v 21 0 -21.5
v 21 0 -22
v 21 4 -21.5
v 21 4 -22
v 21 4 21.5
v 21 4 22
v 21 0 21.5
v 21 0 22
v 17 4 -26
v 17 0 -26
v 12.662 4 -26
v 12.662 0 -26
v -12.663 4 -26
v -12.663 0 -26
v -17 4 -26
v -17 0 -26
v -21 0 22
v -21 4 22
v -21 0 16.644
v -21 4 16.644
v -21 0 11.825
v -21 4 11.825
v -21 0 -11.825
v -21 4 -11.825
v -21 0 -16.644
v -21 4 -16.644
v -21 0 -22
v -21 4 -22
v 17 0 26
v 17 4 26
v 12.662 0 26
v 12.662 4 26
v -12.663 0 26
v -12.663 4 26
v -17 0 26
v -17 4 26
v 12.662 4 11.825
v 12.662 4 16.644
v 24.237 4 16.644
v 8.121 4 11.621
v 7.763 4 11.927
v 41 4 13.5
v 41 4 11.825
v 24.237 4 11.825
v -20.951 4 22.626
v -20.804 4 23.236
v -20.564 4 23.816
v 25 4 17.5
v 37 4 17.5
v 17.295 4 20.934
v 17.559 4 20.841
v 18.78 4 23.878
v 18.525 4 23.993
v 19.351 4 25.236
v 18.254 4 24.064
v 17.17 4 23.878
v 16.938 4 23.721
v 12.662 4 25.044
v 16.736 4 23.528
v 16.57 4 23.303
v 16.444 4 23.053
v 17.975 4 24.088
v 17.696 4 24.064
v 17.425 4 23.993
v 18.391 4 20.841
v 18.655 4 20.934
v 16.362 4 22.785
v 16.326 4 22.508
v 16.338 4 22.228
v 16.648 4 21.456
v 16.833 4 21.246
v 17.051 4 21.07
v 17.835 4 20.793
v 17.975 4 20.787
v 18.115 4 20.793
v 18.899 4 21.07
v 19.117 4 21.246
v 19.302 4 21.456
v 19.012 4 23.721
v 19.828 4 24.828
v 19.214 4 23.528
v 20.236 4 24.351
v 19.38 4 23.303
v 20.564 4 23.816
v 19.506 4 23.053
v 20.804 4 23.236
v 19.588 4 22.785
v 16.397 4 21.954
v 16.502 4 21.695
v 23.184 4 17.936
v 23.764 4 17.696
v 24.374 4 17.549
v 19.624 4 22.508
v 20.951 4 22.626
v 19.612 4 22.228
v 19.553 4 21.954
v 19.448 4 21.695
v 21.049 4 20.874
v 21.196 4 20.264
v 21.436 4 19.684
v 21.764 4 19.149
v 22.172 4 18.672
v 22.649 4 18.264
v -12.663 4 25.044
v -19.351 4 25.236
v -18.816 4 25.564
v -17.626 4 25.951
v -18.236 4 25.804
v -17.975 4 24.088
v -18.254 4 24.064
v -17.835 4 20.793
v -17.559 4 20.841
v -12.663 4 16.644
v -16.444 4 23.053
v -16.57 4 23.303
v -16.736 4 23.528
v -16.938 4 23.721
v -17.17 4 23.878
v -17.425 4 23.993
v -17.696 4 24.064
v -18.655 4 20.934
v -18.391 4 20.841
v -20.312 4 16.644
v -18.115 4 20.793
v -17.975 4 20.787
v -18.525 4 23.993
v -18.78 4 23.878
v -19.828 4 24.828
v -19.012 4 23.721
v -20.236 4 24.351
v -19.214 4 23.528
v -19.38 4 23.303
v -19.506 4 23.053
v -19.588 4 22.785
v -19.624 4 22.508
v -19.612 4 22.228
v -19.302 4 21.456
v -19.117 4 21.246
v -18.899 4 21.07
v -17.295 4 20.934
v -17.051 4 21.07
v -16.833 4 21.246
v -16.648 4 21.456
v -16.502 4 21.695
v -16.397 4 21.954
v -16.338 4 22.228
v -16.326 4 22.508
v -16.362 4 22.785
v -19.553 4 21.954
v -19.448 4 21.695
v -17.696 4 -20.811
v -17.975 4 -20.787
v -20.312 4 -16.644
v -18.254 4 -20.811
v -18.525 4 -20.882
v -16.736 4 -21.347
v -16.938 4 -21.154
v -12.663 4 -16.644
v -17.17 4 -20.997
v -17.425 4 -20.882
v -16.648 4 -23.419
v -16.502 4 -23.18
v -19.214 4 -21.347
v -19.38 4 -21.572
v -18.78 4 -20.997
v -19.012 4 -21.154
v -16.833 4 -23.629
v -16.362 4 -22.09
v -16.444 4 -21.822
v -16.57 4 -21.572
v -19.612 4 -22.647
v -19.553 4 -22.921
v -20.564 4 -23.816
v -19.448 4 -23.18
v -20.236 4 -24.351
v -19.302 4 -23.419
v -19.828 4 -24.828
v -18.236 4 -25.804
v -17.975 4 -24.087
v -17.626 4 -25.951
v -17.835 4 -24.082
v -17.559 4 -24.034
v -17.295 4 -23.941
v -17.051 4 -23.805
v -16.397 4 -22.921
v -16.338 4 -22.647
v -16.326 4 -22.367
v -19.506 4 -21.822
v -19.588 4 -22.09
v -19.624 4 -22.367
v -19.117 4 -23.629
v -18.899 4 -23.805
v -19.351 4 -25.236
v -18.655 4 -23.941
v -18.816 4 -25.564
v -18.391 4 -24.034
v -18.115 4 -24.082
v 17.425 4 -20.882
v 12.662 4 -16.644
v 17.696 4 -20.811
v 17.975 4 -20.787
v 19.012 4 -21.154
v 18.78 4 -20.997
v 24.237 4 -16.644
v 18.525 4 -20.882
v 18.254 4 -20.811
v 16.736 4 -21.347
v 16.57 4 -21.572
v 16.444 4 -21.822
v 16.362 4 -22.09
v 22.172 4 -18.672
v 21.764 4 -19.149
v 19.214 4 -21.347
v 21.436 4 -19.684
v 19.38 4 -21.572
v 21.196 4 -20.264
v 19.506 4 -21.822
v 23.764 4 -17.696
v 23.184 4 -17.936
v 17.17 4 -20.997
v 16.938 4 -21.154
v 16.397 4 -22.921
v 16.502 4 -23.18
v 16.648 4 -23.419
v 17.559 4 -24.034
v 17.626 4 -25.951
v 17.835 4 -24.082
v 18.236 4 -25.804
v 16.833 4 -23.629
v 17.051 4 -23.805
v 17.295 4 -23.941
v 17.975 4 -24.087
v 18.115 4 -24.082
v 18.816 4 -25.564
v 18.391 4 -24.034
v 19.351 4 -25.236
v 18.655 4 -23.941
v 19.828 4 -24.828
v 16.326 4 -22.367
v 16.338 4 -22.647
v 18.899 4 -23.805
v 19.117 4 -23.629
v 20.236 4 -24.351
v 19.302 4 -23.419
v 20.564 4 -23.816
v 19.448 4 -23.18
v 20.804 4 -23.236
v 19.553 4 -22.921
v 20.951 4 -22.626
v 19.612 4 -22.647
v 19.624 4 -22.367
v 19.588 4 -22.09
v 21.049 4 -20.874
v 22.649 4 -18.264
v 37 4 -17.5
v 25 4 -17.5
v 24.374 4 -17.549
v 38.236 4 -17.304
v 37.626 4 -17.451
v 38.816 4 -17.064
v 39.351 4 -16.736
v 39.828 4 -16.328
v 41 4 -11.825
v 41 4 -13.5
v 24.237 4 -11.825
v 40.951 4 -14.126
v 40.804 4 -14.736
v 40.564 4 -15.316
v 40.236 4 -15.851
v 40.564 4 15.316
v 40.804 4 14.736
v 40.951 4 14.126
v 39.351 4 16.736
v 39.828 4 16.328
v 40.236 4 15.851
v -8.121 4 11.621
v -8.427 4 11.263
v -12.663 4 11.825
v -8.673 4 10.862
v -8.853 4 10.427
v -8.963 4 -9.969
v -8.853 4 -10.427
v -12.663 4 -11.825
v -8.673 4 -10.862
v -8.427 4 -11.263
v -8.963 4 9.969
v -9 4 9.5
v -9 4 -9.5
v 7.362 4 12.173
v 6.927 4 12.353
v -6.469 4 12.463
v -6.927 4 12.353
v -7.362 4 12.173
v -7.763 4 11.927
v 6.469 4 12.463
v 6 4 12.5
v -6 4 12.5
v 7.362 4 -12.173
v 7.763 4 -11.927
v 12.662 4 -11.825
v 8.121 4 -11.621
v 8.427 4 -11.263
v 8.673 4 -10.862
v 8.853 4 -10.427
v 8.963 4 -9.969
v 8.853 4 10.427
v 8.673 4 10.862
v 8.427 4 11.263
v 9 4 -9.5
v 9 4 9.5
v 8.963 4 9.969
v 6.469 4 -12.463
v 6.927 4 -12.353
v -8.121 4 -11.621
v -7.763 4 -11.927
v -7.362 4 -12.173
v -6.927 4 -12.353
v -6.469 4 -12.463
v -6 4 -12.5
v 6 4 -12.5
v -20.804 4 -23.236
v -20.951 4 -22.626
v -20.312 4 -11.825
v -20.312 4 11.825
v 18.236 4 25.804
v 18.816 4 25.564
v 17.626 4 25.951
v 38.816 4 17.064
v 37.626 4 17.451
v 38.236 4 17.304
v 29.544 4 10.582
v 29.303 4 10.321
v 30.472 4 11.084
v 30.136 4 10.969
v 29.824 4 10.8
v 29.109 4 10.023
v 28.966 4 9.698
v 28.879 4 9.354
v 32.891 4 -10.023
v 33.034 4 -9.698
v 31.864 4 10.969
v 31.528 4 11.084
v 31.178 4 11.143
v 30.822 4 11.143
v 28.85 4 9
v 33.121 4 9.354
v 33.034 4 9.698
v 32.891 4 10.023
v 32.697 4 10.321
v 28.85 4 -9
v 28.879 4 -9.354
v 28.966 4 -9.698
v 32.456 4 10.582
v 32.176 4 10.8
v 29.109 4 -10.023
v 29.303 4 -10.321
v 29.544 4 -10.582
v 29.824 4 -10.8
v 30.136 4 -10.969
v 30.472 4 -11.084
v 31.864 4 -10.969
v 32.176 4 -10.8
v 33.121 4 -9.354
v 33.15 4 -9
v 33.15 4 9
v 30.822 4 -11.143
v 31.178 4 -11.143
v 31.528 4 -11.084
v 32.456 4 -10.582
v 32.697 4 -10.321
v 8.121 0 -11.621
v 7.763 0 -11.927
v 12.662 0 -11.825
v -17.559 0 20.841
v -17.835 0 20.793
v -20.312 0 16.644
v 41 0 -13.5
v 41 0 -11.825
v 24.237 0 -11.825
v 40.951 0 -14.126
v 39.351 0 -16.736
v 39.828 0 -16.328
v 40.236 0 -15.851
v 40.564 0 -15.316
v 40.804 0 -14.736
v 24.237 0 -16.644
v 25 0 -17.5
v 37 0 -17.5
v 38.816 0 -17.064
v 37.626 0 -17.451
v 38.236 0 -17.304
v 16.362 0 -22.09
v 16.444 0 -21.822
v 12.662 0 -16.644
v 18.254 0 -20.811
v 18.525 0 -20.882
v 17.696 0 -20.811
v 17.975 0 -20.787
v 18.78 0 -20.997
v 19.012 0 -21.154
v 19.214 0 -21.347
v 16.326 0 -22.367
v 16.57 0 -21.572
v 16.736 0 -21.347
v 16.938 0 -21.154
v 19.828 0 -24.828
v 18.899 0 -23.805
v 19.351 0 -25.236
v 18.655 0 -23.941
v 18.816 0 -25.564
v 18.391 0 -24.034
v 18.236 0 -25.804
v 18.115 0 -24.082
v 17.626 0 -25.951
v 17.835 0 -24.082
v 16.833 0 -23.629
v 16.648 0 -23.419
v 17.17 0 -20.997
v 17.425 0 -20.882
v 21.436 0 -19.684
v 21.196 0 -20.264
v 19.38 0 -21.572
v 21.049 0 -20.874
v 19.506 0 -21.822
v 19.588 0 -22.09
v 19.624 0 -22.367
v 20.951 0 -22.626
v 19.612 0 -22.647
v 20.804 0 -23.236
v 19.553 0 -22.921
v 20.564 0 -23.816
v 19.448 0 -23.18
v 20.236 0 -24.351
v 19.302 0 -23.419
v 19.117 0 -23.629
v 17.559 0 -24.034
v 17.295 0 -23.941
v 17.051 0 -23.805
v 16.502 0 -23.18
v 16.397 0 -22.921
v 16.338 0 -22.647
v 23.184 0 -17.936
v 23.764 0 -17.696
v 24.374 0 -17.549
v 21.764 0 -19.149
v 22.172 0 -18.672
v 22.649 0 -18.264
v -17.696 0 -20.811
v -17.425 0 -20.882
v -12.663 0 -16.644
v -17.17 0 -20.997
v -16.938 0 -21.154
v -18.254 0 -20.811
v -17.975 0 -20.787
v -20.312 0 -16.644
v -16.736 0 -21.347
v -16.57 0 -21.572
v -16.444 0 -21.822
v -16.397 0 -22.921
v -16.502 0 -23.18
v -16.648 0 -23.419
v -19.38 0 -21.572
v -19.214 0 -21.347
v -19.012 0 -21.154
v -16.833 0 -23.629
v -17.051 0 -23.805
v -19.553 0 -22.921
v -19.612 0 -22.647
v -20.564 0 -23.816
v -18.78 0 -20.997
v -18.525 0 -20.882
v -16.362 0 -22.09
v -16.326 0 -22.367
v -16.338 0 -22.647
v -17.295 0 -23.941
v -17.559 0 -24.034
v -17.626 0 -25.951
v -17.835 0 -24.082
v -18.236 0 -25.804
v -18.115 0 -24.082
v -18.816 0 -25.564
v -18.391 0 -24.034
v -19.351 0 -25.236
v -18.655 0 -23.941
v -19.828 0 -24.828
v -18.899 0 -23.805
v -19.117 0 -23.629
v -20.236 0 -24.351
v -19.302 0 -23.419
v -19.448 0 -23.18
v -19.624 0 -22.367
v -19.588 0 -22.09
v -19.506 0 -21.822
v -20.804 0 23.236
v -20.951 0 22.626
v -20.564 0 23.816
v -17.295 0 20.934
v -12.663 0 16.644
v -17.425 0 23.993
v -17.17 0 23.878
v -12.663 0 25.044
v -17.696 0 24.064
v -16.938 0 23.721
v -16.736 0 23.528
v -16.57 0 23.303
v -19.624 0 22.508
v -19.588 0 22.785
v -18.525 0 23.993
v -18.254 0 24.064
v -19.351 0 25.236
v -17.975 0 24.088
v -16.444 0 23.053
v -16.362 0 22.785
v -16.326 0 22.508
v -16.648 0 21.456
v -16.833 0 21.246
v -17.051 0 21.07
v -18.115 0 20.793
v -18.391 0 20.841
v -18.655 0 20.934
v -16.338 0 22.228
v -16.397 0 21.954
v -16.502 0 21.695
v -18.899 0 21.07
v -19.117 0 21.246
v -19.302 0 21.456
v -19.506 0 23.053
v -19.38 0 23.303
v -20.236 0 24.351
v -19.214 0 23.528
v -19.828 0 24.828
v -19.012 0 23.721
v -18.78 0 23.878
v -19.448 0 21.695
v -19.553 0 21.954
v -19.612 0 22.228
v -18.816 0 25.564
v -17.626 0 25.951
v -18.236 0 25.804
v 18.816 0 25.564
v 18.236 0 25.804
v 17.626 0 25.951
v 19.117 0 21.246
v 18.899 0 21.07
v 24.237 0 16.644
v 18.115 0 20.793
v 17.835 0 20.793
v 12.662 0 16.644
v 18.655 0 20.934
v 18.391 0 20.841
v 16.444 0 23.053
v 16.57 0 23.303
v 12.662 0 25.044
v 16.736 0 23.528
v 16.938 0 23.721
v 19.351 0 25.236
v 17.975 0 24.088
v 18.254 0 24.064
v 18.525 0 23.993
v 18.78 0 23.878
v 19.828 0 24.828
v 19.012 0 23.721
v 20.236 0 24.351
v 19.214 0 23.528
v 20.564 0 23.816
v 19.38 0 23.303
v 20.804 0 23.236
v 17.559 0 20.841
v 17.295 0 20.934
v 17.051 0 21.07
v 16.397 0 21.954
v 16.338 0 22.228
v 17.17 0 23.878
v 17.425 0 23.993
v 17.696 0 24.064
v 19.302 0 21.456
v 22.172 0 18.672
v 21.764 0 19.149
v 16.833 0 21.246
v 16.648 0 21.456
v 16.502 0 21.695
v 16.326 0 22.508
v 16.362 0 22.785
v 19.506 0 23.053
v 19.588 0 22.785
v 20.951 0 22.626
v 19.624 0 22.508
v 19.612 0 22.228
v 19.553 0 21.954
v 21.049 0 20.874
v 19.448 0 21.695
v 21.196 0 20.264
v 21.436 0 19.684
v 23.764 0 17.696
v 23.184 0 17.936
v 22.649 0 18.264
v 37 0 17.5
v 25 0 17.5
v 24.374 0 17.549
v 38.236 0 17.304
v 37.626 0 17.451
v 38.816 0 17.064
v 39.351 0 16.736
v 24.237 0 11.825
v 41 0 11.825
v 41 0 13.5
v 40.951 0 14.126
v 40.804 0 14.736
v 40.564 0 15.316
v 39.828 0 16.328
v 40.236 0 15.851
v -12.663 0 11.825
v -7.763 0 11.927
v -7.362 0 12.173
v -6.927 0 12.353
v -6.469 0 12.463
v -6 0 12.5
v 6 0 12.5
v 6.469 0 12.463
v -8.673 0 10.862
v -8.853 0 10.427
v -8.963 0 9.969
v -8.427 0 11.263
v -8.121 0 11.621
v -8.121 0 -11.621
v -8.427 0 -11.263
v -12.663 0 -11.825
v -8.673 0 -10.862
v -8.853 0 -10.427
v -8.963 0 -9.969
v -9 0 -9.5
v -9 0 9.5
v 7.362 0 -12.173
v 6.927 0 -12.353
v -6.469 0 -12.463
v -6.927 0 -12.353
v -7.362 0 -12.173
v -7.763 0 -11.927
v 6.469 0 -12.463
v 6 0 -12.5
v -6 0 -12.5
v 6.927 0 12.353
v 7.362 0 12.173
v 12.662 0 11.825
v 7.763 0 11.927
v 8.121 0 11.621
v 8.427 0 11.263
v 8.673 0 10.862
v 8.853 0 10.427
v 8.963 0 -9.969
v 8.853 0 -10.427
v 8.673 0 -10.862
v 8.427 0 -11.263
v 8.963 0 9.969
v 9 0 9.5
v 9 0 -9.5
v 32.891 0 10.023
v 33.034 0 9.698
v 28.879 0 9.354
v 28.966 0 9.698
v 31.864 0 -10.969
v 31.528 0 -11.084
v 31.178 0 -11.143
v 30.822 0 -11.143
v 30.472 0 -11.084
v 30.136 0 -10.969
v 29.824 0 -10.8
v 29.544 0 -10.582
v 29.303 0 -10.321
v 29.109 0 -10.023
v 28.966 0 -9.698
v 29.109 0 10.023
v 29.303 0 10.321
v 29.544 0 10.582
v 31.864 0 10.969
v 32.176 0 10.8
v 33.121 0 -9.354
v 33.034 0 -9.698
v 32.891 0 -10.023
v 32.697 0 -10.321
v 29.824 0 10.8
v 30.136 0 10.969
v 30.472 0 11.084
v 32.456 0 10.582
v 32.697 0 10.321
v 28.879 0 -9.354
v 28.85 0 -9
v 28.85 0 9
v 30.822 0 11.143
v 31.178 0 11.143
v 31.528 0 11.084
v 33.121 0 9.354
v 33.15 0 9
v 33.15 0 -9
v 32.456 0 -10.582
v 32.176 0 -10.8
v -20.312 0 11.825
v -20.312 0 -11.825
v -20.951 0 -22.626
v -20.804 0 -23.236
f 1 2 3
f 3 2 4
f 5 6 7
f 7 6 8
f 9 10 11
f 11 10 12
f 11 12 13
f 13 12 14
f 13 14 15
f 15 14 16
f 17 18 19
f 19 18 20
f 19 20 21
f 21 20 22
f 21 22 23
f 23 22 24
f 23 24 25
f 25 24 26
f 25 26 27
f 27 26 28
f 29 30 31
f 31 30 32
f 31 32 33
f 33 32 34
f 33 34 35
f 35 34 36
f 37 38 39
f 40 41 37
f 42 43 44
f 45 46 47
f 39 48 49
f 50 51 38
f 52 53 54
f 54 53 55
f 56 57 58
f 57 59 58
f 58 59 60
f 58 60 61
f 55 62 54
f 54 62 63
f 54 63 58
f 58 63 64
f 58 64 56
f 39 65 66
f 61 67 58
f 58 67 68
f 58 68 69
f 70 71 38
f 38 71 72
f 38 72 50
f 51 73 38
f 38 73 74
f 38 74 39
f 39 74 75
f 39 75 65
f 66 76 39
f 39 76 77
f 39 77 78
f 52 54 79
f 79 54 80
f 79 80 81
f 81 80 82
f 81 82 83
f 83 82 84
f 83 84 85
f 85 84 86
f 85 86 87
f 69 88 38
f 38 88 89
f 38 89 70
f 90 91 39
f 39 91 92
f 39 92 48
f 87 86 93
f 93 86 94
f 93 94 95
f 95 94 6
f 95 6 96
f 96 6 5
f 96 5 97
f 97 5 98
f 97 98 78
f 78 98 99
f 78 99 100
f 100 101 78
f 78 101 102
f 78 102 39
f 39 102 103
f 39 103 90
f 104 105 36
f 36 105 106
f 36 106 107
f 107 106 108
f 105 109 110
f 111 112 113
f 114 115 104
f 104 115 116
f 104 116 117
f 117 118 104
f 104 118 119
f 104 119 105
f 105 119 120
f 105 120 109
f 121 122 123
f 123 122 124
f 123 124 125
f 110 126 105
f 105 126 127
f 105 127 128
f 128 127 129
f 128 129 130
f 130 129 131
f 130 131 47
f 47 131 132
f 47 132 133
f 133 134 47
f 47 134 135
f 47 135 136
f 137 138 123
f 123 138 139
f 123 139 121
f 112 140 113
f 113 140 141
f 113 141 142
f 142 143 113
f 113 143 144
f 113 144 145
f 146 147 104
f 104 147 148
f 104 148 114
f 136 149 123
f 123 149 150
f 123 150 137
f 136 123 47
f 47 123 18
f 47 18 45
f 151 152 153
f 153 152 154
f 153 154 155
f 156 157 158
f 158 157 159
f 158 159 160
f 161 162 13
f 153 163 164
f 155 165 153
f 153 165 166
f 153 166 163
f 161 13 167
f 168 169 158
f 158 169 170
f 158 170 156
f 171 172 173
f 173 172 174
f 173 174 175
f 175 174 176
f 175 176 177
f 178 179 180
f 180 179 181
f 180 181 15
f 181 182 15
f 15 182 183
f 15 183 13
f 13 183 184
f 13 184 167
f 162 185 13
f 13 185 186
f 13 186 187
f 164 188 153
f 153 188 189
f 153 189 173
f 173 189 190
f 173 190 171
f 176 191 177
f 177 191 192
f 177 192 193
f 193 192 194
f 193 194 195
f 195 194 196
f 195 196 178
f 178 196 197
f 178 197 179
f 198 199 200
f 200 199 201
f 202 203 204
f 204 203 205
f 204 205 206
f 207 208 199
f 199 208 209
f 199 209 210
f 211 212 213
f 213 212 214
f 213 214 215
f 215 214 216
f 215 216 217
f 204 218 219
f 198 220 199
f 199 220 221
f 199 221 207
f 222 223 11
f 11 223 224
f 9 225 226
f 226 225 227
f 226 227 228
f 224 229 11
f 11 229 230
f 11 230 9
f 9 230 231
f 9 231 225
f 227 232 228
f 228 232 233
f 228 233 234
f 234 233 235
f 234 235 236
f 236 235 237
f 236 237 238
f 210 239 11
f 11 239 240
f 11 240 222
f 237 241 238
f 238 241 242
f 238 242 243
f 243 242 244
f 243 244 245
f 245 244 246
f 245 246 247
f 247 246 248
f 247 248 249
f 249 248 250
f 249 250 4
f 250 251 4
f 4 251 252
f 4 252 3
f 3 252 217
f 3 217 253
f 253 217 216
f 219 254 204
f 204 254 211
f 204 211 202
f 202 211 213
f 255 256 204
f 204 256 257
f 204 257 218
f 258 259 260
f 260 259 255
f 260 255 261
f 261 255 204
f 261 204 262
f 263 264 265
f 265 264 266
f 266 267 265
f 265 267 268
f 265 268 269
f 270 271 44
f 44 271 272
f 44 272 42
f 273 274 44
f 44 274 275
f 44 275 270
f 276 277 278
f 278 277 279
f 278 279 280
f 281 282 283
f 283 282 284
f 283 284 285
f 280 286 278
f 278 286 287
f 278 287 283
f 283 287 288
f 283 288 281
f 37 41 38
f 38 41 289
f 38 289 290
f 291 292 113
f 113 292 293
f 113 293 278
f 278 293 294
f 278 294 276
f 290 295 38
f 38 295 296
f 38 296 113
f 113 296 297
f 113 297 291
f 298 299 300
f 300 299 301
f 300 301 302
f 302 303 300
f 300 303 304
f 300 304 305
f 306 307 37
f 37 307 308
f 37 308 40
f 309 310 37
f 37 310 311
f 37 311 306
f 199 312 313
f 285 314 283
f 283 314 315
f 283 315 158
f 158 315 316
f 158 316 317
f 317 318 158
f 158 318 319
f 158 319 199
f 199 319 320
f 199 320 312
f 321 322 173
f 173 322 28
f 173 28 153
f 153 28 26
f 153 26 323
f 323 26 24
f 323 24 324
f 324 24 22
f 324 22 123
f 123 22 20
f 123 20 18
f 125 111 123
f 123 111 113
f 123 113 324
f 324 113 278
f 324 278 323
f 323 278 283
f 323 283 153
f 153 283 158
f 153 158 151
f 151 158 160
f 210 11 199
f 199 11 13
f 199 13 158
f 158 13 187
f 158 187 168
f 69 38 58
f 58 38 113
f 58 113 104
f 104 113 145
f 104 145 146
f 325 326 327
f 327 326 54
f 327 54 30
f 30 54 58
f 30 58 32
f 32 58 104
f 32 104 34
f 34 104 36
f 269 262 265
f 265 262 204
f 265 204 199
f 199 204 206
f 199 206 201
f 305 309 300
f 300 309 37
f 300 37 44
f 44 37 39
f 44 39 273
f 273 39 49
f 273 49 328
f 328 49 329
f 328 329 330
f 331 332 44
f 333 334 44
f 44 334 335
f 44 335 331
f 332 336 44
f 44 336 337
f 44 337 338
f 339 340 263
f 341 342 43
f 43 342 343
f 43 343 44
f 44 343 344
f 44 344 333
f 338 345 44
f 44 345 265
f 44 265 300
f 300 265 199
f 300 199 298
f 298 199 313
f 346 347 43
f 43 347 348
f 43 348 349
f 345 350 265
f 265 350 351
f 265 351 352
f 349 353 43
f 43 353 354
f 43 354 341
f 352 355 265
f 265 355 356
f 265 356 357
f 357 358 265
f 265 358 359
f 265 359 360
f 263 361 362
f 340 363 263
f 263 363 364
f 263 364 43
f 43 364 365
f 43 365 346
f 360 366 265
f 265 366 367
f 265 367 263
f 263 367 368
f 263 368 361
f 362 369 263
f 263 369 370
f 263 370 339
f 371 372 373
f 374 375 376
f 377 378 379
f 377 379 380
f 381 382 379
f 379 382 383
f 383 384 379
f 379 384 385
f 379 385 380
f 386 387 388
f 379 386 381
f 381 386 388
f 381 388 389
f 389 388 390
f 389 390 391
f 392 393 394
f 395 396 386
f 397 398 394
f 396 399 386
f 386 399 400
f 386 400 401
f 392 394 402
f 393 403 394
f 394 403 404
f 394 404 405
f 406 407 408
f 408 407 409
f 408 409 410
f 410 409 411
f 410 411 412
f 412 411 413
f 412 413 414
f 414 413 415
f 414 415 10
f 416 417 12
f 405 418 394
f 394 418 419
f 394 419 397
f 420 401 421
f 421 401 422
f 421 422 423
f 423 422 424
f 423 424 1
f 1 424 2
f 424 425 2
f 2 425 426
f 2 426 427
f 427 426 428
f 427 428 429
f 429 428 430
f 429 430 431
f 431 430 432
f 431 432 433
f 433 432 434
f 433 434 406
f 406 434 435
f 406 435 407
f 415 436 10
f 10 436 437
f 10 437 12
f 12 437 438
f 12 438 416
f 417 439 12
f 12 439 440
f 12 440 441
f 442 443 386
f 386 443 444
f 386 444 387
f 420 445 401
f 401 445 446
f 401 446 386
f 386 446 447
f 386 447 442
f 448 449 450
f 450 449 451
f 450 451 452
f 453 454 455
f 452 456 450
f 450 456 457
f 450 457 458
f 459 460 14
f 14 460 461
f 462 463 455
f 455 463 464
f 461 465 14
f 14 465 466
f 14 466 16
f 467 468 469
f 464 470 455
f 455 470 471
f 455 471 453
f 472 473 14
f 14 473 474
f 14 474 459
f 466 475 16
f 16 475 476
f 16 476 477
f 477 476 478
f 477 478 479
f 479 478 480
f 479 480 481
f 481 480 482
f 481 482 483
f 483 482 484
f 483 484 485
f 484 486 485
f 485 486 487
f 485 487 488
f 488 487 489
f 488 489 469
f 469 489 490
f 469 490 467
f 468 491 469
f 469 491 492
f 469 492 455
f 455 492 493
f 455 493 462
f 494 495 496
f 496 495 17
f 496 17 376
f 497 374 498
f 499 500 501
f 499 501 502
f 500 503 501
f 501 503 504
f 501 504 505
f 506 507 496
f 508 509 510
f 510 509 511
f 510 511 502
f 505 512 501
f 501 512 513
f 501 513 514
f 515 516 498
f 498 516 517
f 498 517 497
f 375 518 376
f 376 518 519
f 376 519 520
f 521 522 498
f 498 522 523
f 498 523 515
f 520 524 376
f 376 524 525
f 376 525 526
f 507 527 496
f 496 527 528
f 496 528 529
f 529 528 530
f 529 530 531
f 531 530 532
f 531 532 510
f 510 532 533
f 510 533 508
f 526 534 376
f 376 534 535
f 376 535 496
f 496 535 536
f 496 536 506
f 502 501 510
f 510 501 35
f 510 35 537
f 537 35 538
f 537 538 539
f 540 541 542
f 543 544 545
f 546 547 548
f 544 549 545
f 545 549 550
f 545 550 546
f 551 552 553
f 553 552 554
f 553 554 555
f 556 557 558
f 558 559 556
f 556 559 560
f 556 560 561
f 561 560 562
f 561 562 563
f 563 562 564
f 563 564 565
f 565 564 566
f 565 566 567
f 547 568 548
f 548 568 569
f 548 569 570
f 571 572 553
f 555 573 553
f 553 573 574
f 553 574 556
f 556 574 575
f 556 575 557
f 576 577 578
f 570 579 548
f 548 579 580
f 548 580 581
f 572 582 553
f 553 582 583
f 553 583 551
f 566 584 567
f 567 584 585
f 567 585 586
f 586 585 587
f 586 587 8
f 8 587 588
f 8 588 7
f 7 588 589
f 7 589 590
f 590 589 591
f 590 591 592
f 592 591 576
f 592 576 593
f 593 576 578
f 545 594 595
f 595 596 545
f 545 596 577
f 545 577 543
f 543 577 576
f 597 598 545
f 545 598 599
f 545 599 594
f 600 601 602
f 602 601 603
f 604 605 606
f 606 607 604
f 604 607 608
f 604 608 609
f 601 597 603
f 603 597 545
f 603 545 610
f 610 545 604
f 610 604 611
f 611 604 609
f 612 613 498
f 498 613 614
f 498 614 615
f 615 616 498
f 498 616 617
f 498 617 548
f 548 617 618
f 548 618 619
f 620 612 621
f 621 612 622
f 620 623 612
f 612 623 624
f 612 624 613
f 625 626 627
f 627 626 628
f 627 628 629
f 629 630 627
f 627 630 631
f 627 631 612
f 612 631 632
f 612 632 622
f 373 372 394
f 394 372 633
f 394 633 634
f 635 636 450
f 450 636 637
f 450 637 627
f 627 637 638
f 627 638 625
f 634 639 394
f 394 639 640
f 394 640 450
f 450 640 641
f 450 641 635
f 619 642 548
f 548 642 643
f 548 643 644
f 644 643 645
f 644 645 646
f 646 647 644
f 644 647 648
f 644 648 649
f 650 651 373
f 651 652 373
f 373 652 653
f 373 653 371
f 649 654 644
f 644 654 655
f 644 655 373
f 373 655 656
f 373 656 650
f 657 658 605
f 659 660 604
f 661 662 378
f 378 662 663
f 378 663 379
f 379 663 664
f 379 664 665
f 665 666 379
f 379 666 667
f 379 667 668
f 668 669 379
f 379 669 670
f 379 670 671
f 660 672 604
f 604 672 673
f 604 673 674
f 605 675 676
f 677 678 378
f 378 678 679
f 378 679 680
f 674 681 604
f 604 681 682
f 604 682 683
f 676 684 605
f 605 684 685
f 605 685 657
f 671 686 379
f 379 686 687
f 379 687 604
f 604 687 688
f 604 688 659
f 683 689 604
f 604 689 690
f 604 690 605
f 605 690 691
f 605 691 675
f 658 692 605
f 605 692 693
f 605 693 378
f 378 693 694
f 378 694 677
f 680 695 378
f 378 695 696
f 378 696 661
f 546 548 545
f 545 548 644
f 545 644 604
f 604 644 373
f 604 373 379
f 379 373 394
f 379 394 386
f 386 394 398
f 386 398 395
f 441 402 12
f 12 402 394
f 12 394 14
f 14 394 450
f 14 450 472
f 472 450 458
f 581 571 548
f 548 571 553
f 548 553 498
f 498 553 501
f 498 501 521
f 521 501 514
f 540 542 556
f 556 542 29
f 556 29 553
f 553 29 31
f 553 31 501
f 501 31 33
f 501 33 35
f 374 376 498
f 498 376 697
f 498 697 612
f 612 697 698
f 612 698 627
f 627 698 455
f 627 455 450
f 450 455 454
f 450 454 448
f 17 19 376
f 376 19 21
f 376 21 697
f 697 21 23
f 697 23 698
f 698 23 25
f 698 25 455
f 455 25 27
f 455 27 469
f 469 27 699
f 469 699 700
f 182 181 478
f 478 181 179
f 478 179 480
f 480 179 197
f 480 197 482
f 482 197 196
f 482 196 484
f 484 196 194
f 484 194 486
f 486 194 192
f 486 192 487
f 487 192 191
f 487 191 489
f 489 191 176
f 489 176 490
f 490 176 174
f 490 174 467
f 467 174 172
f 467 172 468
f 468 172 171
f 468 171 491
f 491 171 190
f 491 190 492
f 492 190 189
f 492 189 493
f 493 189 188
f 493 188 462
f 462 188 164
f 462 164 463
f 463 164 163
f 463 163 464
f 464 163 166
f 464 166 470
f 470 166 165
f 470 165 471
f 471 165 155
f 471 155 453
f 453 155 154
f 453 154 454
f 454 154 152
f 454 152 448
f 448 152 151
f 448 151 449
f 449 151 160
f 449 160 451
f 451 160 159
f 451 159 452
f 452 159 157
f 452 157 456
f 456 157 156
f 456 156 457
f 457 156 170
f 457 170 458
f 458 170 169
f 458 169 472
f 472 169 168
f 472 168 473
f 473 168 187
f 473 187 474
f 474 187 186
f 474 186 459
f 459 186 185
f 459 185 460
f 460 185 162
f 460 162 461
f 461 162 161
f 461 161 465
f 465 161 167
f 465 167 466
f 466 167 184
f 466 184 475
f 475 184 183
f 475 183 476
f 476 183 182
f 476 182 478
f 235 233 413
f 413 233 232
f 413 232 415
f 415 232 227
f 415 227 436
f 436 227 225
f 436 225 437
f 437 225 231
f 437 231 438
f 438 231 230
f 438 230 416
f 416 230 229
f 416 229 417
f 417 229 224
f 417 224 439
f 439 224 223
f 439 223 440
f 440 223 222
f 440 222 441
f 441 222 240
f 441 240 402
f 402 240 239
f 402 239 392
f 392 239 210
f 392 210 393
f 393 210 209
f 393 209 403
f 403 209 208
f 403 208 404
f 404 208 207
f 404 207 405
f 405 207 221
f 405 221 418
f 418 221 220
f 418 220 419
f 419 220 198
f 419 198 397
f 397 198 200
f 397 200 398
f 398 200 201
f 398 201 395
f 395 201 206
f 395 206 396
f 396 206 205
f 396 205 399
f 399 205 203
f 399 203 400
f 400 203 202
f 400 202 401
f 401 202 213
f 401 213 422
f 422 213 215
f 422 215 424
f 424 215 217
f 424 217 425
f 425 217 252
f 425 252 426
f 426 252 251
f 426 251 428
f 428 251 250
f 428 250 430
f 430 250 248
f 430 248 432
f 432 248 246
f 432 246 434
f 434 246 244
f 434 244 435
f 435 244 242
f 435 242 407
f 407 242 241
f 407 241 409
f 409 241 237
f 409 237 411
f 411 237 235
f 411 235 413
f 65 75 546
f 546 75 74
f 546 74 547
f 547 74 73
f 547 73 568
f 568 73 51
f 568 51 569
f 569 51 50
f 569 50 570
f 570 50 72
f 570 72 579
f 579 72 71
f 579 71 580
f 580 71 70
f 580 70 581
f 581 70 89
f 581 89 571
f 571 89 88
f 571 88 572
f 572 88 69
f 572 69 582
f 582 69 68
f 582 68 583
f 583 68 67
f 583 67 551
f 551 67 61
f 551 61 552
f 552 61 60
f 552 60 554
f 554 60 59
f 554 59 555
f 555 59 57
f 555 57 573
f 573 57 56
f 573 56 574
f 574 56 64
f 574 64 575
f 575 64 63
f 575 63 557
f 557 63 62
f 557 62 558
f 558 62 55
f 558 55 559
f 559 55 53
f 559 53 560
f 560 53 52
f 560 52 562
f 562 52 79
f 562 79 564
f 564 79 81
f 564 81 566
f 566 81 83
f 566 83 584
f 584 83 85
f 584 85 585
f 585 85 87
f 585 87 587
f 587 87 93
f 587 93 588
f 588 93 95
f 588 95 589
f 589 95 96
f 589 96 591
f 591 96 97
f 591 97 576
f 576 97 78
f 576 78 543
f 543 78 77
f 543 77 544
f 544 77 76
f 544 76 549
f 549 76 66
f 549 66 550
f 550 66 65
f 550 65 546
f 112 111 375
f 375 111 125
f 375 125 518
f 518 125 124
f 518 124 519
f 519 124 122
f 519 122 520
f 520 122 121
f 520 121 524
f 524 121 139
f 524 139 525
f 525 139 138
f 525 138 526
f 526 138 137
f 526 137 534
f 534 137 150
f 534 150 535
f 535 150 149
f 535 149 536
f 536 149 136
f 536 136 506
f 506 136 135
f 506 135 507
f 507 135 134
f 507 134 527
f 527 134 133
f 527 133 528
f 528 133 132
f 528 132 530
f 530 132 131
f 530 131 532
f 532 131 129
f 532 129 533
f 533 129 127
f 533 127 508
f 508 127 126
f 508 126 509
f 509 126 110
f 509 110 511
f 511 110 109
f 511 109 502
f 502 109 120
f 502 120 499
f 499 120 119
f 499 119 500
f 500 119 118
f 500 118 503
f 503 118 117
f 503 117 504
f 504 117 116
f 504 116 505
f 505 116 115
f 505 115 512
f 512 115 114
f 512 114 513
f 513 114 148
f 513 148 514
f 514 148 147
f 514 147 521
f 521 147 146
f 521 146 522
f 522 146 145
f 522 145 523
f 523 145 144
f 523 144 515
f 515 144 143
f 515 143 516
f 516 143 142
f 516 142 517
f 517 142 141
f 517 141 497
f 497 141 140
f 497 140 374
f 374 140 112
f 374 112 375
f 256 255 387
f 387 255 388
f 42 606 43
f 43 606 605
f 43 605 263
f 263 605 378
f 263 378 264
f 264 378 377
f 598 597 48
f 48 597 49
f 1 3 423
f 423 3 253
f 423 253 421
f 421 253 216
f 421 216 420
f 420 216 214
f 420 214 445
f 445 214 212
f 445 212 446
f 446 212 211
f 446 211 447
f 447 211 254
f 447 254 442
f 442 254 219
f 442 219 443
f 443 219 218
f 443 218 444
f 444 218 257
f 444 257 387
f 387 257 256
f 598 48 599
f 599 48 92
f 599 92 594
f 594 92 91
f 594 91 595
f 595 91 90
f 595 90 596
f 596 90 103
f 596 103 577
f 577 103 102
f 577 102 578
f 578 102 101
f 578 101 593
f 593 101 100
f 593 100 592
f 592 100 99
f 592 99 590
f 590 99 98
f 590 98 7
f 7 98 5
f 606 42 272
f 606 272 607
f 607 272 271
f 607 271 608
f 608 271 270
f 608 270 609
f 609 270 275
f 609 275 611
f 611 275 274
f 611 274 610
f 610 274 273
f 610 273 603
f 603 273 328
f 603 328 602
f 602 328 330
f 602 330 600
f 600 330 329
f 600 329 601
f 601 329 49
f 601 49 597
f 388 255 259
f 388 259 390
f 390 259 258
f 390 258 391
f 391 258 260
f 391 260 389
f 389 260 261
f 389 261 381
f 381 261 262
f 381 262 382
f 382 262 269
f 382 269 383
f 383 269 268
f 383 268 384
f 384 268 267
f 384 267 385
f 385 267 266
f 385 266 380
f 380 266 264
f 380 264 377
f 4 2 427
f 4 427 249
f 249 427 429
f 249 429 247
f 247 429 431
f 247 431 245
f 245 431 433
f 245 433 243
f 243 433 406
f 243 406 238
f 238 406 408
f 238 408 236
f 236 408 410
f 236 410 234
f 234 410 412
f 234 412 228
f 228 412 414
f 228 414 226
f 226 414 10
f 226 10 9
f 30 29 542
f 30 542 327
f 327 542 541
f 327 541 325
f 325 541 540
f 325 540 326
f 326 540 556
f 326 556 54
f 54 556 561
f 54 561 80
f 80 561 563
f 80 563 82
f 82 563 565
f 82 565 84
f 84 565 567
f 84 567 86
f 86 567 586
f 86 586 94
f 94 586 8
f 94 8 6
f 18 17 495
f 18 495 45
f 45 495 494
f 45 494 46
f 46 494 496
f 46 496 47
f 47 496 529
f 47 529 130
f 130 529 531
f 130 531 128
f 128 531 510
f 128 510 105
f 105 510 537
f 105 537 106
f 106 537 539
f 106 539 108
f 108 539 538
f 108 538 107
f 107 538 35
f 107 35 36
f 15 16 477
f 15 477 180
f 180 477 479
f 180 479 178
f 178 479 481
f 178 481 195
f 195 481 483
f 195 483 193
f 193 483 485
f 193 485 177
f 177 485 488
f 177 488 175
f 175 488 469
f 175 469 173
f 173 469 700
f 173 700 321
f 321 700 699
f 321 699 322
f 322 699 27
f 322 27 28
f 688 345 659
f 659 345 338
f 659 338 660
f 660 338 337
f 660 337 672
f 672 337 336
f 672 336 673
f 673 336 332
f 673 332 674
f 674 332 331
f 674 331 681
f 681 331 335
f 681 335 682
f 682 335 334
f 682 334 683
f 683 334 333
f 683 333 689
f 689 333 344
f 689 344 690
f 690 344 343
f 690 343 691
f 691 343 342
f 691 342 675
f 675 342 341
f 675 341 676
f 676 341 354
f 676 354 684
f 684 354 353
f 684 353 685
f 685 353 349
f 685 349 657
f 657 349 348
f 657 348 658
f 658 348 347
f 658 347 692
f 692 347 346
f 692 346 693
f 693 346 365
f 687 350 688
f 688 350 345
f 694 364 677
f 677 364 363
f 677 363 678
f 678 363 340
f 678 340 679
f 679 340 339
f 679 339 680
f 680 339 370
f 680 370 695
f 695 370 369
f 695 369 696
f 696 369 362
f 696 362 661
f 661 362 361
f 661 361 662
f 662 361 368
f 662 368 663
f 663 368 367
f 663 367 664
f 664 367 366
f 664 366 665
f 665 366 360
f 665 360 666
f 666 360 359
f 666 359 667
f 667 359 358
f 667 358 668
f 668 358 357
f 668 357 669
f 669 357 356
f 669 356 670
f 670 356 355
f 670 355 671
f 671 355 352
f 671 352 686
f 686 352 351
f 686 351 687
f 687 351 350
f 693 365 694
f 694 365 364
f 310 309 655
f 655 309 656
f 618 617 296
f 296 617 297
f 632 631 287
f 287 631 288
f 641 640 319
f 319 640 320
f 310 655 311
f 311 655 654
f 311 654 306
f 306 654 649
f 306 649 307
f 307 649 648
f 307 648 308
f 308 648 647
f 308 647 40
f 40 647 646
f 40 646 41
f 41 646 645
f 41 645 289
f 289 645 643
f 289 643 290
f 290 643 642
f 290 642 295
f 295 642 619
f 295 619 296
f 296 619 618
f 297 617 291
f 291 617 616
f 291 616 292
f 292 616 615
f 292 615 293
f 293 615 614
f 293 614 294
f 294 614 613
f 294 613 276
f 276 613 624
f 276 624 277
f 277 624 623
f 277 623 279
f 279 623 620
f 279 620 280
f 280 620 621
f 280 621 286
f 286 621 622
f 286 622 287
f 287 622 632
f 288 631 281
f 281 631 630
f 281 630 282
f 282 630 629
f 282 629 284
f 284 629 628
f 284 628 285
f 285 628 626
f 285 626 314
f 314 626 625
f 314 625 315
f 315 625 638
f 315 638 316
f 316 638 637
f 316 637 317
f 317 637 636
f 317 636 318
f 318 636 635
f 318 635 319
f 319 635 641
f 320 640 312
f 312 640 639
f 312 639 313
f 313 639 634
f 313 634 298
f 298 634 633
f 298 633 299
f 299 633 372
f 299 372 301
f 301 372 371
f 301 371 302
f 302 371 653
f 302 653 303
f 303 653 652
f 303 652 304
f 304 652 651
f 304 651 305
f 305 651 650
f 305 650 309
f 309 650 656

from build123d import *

# Parameters (mm, degrees)
SKETCH1_W               = 42
SKETCH1_H               = 52
BOSS_EXTRUDE1_DEPTH     = 4
SKETCH2_R               = 1.65
CUT_EXTRUDE1_DEPTH      = 1
CUT_EXTRUDE1_DEPTH_BACK = 5
SKETCH3_W               = 20
SKETCH3_H               = 35
BOSS_EXTRUDE2_DEPTH     = 4
FILLET1_R               = 4
CUT_EXTRUDE2_DEPTH      = 1
CUT_EXTRUDE2_DEPTH_BACK = 5
SKETCH5_W               = 18
SKETCH5_H               = 25
CUT_EXTRUDE3_DEPTH      = 1
CUT_EXTRUDE3_DEPTH_BACK = 5
FILLET2_R               = 3


with BuildPart() as part:
    # Sketch1 → Boss-Extrude1 (new body)
    with BuildSketch(Plane(origin=(0, 0, 0), x_dir=(1, 0, 0), z_dir=(0, 1, 0))):
        Rectangle(SKETCH1_W, SKETCH1_H)
    extrude(amount=BOSS_EXTRUDE1_DEPTH)

    # Sketch2 → Cut-Extrude1 (cut, two sides)
    with BuildSketch(Plane(origin=(0, 4, 0), x_dir=(1, 0, 0), z_dir=(0, 1, 0))) as cut_extrude1_sk:
        with Locations((-17.975, 22.4375)):
            Circle(SKETCH2_R)
        with Locations((17.975, 22.4375)):
            Circle(SKETCH2_R)
        with Locations((17.975, -22.4375)):
            Circle(SKETCH2_R)
        with Locations((-17.975, -22.4375)):
            Circle(SKETCH2_R)
    extrude(amount=CUT_EXTRUDE1_DEPTH, mode=Mode.SUBTRACT)
    extrude(cut_extrude1_sk.sketch, amount=-CUT_EXTRUDE1_DEPTH_BACK, mode=Mode.SUBTRACT)

    # Sketch3 → Boss-Extrude2 (add)
    with BuildSketch(Plane(origin=(0, 4, 0), x_dir=(1, 0, 0), z_dir=(0, 1, 0))):
        with Locations((31, 0)):
            Rectangle(SKETCH3_W, SKETCH3_H)
    extrude(amount=-BOSS_EXTRUDE2_DEPTH)

    # Fillet1
    fillet1_edges = [part.edges().sort_by_distance(p)[0] for p in [
        (21, 2, 17.5),
        (21, 2, -17.5),
        (41, 2, -17.5),
        (41, 2, 17.5),
        (21, 2, 26),
        (-21, 2, 26),
        (-21, 2, -26),
        (21, 2, -26),
    ]]
    fillet(fillet1_edges, radius=FILLET1_R)

    # Sketch4 → Cut-Extrude2 (cut, two sides)
    with BuildSketch(Plane(origin=(0, 4, 0), x_dir=(1, 0, 0), z_dir=(0, 1, 0))) as cut_extrude2_sk:
        with BuildLine():
            Line((28.85, -9), (28.85, 9))
            ThreePointArc((28.85, 9), (31, 11.15), (33.15, 9))
            Line((33.15, 9), (33.15, -9))
            ThreePointArc((33.15, -9), (31, -11.15), (28.85, -9))
        make_face()
    extrude(amount=CUT_EXTRUDE2_DEPTH, mode=Mode.SUBTRACT)
    extrude(cut_extrude2_sk.sketch, amount=-CUT_EXTRUDE2_DEPTH_BACK, mode=Mode.SUBTRACT)

    # Sketch5 → Cut-Extrude3 (cut, two sides)
    with BuildSketch(Plane(origin=(0, 4, 0), x_dir=(1, 0, 0), z_dir=(0, 1, 0))) as cut_extrude3_sk:
        Rectangle(SKETCH5_W, SKETCH5_H)
    extrude(amount=CUT_EXTRUDE3_DEPTH, mode=Mode.SUBTRACT)
    extrude(cut_extrude3_sk.sketch, amount=-CUT_EXTRUDE3_DEPTH_BACK, mode=Mode.SUBTRACT)

    # Fillet2
    fillet2_edges = [part.edges().sort_by_distance(p)[0] for p in [
        (9, 2, -12.5),
        (9, 2, 12.5),
        (-9, 2, 12.5),
        (-9, 2, -12.5),
    ]]
    fillet(fillet2_edges, radius=FILLET2_R)


solid = part.part
